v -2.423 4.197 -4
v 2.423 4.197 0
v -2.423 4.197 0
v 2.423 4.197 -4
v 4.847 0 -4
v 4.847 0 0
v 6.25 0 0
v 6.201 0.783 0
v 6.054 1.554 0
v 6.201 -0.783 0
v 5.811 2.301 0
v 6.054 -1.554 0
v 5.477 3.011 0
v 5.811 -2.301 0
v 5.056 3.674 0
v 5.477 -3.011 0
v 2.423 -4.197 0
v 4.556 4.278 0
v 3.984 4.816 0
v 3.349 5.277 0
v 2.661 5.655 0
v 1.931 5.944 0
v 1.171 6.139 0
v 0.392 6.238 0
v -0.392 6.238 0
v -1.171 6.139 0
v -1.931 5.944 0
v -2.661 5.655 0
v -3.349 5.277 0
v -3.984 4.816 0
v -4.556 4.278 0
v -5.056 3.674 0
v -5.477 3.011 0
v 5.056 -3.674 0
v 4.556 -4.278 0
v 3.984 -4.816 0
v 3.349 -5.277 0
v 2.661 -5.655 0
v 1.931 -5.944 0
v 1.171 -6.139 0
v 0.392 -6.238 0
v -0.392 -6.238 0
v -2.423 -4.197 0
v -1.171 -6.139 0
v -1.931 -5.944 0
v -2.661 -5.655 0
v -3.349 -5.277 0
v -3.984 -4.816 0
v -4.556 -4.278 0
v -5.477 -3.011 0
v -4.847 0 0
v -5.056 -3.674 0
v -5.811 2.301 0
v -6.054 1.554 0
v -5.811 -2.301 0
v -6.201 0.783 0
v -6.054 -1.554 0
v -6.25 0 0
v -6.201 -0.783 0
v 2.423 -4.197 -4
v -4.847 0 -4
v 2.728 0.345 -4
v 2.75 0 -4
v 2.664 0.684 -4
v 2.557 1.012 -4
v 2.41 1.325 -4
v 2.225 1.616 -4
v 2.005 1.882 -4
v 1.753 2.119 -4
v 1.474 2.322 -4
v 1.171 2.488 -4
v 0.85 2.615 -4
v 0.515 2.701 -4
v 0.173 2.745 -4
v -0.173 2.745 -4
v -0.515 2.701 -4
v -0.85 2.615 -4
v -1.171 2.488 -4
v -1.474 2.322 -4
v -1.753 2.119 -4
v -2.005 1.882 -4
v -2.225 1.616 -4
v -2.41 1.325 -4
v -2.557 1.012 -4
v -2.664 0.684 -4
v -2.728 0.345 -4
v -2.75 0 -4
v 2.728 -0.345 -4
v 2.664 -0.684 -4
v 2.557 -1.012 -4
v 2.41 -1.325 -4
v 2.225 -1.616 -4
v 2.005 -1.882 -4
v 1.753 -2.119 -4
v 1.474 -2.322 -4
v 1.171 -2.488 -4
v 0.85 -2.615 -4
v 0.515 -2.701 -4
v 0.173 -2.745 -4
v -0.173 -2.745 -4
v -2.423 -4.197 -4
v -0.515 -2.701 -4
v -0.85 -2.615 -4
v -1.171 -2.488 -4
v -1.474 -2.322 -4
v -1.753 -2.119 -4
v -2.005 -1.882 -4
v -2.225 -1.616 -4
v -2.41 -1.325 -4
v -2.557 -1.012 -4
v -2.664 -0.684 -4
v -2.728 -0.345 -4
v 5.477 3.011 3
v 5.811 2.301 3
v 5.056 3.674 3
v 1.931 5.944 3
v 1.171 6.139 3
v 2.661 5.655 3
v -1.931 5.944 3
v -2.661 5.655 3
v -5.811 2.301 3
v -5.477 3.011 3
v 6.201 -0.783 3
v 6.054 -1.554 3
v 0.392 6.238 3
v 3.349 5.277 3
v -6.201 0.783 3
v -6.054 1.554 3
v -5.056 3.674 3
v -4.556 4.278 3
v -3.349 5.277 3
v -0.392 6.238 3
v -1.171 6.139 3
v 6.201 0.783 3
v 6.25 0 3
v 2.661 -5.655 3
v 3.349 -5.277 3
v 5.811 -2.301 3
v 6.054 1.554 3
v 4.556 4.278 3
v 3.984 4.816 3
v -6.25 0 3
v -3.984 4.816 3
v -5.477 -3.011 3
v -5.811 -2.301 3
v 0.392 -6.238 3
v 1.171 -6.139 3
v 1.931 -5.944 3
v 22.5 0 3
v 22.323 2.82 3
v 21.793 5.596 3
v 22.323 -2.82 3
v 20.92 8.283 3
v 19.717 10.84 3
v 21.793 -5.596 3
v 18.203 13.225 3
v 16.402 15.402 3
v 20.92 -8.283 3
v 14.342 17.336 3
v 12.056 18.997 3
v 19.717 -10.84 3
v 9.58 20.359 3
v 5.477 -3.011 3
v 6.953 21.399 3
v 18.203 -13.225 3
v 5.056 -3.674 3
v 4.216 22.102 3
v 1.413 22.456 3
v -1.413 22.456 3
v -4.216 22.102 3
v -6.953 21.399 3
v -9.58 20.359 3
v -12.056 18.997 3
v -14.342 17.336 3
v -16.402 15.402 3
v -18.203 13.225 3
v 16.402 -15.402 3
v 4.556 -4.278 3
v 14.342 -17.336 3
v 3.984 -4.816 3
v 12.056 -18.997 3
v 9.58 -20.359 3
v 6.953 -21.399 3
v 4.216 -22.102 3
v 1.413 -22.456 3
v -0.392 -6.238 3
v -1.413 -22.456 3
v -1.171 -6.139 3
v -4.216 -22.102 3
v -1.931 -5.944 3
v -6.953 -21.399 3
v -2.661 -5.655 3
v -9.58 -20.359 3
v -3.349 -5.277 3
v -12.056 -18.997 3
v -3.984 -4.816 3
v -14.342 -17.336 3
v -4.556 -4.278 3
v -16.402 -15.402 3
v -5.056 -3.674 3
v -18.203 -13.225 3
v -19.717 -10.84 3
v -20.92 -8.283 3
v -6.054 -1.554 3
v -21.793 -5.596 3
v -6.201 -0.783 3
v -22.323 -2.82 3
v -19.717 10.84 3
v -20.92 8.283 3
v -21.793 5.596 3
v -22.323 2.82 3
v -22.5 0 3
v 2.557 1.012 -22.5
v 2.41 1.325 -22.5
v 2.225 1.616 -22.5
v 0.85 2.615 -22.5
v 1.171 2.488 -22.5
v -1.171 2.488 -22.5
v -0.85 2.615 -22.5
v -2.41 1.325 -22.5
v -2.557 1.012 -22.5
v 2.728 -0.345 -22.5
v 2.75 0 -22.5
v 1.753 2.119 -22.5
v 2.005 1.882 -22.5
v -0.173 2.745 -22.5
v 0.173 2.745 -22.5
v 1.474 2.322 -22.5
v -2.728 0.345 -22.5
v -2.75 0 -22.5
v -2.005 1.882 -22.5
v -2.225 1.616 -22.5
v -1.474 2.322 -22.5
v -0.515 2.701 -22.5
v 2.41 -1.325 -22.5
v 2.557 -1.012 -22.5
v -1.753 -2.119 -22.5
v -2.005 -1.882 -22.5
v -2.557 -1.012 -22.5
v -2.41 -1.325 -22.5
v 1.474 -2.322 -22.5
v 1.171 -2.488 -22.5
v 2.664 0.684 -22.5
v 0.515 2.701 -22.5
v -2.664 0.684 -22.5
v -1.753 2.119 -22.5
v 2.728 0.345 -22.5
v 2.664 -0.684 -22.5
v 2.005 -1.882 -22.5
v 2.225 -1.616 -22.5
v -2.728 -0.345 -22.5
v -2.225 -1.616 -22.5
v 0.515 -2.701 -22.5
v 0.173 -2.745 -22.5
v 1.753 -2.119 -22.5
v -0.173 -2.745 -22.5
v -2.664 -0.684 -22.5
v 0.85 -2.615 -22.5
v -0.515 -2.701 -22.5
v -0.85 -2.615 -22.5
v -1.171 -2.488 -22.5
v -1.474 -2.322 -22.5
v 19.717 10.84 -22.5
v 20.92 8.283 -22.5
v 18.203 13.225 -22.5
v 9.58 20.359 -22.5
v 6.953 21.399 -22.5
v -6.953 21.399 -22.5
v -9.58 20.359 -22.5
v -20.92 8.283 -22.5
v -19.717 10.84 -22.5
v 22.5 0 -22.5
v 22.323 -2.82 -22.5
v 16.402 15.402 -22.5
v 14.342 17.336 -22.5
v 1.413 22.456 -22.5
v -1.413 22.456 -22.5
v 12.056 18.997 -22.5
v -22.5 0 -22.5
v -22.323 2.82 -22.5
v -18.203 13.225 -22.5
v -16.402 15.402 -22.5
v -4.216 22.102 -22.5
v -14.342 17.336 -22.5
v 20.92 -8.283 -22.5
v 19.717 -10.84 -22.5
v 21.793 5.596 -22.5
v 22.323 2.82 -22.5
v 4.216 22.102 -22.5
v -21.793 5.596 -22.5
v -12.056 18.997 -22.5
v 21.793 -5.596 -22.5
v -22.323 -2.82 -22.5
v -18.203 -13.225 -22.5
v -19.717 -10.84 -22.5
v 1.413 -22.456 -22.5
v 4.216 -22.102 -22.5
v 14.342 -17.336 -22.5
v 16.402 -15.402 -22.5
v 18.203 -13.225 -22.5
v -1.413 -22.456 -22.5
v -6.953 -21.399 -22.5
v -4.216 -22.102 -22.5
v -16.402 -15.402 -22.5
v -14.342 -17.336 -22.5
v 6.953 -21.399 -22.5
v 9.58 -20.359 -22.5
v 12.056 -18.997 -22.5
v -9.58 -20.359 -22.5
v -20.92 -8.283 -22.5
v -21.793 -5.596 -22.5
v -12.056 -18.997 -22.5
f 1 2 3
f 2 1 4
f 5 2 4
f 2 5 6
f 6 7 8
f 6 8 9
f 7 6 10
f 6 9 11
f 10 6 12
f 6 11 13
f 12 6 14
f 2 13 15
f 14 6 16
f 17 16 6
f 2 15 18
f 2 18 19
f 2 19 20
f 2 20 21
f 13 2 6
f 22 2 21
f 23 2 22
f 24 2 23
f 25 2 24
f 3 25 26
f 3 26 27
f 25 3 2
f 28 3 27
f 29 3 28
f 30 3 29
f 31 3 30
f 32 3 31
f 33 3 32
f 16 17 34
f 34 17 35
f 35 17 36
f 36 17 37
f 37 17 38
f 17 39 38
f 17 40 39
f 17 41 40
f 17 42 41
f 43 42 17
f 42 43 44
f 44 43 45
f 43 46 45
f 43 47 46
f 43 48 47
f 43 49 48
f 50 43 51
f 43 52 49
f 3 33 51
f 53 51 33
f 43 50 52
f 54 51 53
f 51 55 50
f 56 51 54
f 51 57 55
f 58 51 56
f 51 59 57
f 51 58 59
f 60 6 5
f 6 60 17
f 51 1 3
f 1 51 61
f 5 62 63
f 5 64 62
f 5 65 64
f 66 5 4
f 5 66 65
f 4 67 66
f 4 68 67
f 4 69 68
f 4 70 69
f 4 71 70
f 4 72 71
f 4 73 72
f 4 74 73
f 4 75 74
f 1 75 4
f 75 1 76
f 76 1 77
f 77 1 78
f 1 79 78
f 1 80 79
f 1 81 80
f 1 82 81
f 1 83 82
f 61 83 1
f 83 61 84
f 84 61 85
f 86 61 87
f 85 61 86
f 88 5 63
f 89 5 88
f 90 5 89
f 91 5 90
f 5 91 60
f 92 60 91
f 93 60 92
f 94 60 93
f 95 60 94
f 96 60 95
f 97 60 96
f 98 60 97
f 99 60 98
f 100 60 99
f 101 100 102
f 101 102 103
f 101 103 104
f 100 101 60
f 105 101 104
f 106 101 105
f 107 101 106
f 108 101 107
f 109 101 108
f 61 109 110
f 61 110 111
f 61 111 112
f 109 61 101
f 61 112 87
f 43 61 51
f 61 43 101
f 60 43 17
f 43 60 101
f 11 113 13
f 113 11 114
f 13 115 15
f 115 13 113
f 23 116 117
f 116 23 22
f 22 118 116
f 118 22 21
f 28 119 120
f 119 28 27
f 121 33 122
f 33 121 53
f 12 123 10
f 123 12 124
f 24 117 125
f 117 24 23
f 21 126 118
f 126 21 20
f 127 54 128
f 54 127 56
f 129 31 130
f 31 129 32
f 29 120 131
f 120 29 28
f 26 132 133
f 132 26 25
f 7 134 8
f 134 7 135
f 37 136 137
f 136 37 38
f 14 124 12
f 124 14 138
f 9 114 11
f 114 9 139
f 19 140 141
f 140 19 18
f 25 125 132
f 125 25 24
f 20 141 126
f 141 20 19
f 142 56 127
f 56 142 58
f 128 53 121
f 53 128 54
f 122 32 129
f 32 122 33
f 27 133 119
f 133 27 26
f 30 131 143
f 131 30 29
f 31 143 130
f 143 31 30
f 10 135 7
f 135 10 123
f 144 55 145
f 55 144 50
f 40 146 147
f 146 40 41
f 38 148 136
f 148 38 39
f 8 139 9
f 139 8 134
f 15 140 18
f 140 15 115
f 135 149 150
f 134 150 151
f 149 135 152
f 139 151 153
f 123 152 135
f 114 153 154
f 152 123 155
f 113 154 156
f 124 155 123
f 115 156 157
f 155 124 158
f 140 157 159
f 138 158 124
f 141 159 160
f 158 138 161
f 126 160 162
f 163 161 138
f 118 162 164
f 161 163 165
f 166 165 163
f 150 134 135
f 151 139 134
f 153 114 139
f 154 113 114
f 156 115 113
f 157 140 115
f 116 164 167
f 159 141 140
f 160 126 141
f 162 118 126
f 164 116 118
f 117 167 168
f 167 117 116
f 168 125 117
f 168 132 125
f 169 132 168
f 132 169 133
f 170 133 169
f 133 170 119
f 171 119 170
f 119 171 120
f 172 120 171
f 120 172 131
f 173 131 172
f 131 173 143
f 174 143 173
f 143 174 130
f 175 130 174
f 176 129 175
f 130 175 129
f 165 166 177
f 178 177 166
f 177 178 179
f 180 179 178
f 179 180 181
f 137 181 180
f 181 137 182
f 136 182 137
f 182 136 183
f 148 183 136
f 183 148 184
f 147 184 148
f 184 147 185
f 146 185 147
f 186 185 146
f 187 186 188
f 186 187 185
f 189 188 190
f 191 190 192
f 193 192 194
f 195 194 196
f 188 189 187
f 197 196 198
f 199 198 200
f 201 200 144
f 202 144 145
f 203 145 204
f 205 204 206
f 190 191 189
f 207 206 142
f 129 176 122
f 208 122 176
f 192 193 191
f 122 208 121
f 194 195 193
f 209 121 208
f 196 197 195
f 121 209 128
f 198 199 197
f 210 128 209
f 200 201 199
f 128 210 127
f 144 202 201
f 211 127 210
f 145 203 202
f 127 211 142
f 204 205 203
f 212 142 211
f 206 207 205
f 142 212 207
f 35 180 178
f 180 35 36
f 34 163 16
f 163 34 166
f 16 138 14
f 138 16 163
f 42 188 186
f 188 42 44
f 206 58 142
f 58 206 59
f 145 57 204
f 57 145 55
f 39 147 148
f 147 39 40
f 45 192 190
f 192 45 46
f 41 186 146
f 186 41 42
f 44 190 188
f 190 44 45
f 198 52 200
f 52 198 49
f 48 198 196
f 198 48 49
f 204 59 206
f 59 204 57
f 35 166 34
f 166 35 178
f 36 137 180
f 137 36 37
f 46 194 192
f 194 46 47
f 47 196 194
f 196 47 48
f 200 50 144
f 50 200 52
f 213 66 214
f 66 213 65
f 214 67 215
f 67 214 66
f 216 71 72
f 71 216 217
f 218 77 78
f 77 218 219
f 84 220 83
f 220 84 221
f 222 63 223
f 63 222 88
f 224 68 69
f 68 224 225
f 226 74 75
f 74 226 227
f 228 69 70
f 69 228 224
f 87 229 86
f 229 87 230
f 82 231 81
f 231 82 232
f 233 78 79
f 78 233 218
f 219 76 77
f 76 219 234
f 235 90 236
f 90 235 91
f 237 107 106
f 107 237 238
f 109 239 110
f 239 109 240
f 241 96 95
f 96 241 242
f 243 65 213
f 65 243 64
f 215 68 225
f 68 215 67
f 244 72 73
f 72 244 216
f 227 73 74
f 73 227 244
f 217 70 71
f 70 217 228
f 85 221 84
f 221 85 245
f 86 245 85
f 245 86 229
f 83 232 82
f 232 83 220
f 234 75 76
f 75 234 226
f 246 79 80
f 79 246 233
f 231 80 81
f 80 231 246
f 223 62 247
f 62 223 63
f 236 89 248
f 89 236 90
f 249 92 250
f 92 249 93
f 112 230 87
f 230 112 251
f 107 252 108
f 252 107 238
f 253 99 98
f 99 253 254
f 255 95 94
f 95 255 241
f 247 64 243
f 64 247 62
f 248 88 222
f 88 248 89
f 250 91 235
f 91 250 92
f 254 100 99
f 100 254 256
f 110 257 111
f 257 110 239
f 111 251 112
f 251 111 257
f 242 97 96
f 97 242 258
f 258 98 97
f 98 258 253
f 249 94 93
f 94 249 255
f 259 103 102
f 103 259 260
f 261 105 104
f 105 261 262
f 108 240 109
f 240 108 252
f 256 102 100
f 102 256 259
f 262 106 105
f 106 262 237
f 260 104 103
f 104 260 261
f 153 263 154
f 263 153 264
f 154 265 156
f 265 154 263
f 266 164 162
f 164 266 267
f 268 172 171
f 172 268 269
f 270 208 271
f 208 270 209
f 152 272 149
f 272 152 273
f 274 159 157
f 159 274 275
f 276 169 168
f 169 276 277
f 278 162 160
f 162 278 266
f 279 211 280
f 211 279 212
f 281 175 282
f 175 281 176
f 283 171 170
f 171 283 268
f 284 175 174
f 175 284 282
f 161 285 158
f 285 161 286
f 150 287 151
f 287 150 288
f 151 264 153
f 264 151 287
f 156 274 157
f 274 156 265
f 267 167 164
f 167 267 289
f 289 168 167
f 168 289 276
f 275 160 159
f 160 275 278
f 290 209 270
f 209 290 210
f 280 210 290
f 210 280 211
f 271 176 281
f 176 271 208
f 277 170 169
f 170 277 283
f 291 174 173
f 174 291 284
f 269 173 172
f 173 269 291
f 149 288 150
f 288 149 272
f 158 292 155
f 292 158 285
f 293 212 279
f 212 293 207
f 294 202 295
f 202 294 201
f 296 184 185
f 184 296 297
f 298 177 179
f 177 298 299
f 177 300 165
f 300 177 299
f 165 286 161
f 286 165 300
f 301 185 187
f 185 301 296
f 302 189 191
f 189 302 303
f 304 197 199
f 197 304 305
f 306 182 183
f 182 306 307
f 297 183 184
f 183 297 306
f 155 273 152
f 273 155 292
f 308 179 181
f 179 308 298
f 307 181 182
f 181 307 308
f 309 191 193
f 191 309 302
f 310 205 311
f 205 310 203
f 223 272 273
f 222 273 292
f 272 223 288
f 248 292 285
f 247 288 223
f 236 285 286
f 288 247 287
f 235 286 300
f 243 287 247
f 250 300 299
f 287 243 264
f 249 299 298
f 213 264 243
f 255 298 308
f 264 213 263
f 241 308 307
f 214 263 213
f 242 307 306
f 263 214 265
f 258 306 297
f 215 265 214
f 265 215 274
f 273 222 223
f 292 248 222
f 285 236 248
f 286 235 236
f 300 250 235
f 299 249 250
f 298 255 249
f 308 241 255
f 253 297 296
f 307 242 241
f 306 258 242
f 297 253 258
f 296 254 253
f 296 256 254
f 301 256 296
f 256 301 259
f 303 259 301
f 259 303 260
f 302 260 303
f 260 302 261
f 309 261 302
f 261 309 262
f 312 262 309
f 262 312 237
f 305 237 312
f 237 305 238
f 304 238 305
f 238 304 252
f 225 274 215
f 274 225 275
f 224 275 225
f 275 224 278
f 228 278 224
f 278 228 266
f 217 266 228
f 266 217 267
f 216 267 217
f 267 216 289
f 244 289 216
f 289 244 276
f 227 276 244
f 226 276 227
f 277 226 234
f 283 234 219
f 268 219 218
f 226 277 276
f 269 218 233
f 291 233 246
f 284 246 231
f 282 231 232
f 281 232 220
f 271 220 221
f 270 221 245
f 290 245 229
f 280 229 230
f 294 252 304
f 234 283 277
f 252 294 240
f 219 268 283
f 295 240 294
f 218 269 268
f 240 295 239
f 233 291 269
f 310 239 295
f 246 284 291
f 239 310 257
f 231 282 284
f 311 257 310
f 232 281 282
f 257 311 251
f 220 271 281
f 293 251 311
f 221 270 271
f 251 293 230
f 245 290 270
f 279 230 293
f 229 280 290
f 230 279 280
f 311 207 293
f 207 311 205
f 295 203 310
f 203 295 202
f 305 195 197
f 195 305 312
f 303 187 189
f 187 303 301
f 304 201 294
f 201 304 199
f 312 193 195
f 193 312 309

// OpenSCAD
$fn = 50;

difference() {
	union() {
		translate(v = [0, 0, -22.5]) {
			cylinder(h = 25.5, r = 22.5);
		}
	}
	union() {
		translate(v = [0, 0, 0]) {
			rotate(a = [0, 0, 0]) {
				difference() {
					union() {
						translate(v = [0, 0, -4]) {
							linear_extrude(height = 4) {
								polygon(points = [[4.8468, 0.0], [2.4234000000000004, 4.197451927062417], [-2.423399999999999, 4.197451927062417], [-4.8468, 5.935618106107392e-16], [-2.423400000000002, -4.197451927062416], [2.423399999999997, -4.197451927062419]]);
							}
						}
					}
					union();
				}
			}
		}
		#cylinder(h = 3, r = 6.25);
		#translate(v = [0, 0, -100.0]) {
			cylinder(h = 200, r = 2.75);
		}
	}
}
